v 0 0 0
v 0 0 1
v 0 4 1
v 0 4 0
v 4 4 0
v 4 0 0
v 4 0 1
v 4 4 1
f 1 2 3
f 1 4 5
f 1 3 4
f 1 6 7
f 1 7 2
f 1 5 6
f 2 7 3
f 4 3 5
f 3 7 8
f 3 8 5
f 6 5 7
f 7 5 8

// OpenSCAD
/* Warning, this is a very basic generator with a lot of approximation 
input data : [VQFN, 9DX, 4x4x1.0mm, 16, , A, C04-00268A]
generated by com.zoubworld.electronics.cad.model3d.Basic
Date : Sun Feb 15 10:50:48 CET 2026
*/

//body
color("black")
translate([0,0,0])
cube([4.0,4.0,1.0], center=false);
